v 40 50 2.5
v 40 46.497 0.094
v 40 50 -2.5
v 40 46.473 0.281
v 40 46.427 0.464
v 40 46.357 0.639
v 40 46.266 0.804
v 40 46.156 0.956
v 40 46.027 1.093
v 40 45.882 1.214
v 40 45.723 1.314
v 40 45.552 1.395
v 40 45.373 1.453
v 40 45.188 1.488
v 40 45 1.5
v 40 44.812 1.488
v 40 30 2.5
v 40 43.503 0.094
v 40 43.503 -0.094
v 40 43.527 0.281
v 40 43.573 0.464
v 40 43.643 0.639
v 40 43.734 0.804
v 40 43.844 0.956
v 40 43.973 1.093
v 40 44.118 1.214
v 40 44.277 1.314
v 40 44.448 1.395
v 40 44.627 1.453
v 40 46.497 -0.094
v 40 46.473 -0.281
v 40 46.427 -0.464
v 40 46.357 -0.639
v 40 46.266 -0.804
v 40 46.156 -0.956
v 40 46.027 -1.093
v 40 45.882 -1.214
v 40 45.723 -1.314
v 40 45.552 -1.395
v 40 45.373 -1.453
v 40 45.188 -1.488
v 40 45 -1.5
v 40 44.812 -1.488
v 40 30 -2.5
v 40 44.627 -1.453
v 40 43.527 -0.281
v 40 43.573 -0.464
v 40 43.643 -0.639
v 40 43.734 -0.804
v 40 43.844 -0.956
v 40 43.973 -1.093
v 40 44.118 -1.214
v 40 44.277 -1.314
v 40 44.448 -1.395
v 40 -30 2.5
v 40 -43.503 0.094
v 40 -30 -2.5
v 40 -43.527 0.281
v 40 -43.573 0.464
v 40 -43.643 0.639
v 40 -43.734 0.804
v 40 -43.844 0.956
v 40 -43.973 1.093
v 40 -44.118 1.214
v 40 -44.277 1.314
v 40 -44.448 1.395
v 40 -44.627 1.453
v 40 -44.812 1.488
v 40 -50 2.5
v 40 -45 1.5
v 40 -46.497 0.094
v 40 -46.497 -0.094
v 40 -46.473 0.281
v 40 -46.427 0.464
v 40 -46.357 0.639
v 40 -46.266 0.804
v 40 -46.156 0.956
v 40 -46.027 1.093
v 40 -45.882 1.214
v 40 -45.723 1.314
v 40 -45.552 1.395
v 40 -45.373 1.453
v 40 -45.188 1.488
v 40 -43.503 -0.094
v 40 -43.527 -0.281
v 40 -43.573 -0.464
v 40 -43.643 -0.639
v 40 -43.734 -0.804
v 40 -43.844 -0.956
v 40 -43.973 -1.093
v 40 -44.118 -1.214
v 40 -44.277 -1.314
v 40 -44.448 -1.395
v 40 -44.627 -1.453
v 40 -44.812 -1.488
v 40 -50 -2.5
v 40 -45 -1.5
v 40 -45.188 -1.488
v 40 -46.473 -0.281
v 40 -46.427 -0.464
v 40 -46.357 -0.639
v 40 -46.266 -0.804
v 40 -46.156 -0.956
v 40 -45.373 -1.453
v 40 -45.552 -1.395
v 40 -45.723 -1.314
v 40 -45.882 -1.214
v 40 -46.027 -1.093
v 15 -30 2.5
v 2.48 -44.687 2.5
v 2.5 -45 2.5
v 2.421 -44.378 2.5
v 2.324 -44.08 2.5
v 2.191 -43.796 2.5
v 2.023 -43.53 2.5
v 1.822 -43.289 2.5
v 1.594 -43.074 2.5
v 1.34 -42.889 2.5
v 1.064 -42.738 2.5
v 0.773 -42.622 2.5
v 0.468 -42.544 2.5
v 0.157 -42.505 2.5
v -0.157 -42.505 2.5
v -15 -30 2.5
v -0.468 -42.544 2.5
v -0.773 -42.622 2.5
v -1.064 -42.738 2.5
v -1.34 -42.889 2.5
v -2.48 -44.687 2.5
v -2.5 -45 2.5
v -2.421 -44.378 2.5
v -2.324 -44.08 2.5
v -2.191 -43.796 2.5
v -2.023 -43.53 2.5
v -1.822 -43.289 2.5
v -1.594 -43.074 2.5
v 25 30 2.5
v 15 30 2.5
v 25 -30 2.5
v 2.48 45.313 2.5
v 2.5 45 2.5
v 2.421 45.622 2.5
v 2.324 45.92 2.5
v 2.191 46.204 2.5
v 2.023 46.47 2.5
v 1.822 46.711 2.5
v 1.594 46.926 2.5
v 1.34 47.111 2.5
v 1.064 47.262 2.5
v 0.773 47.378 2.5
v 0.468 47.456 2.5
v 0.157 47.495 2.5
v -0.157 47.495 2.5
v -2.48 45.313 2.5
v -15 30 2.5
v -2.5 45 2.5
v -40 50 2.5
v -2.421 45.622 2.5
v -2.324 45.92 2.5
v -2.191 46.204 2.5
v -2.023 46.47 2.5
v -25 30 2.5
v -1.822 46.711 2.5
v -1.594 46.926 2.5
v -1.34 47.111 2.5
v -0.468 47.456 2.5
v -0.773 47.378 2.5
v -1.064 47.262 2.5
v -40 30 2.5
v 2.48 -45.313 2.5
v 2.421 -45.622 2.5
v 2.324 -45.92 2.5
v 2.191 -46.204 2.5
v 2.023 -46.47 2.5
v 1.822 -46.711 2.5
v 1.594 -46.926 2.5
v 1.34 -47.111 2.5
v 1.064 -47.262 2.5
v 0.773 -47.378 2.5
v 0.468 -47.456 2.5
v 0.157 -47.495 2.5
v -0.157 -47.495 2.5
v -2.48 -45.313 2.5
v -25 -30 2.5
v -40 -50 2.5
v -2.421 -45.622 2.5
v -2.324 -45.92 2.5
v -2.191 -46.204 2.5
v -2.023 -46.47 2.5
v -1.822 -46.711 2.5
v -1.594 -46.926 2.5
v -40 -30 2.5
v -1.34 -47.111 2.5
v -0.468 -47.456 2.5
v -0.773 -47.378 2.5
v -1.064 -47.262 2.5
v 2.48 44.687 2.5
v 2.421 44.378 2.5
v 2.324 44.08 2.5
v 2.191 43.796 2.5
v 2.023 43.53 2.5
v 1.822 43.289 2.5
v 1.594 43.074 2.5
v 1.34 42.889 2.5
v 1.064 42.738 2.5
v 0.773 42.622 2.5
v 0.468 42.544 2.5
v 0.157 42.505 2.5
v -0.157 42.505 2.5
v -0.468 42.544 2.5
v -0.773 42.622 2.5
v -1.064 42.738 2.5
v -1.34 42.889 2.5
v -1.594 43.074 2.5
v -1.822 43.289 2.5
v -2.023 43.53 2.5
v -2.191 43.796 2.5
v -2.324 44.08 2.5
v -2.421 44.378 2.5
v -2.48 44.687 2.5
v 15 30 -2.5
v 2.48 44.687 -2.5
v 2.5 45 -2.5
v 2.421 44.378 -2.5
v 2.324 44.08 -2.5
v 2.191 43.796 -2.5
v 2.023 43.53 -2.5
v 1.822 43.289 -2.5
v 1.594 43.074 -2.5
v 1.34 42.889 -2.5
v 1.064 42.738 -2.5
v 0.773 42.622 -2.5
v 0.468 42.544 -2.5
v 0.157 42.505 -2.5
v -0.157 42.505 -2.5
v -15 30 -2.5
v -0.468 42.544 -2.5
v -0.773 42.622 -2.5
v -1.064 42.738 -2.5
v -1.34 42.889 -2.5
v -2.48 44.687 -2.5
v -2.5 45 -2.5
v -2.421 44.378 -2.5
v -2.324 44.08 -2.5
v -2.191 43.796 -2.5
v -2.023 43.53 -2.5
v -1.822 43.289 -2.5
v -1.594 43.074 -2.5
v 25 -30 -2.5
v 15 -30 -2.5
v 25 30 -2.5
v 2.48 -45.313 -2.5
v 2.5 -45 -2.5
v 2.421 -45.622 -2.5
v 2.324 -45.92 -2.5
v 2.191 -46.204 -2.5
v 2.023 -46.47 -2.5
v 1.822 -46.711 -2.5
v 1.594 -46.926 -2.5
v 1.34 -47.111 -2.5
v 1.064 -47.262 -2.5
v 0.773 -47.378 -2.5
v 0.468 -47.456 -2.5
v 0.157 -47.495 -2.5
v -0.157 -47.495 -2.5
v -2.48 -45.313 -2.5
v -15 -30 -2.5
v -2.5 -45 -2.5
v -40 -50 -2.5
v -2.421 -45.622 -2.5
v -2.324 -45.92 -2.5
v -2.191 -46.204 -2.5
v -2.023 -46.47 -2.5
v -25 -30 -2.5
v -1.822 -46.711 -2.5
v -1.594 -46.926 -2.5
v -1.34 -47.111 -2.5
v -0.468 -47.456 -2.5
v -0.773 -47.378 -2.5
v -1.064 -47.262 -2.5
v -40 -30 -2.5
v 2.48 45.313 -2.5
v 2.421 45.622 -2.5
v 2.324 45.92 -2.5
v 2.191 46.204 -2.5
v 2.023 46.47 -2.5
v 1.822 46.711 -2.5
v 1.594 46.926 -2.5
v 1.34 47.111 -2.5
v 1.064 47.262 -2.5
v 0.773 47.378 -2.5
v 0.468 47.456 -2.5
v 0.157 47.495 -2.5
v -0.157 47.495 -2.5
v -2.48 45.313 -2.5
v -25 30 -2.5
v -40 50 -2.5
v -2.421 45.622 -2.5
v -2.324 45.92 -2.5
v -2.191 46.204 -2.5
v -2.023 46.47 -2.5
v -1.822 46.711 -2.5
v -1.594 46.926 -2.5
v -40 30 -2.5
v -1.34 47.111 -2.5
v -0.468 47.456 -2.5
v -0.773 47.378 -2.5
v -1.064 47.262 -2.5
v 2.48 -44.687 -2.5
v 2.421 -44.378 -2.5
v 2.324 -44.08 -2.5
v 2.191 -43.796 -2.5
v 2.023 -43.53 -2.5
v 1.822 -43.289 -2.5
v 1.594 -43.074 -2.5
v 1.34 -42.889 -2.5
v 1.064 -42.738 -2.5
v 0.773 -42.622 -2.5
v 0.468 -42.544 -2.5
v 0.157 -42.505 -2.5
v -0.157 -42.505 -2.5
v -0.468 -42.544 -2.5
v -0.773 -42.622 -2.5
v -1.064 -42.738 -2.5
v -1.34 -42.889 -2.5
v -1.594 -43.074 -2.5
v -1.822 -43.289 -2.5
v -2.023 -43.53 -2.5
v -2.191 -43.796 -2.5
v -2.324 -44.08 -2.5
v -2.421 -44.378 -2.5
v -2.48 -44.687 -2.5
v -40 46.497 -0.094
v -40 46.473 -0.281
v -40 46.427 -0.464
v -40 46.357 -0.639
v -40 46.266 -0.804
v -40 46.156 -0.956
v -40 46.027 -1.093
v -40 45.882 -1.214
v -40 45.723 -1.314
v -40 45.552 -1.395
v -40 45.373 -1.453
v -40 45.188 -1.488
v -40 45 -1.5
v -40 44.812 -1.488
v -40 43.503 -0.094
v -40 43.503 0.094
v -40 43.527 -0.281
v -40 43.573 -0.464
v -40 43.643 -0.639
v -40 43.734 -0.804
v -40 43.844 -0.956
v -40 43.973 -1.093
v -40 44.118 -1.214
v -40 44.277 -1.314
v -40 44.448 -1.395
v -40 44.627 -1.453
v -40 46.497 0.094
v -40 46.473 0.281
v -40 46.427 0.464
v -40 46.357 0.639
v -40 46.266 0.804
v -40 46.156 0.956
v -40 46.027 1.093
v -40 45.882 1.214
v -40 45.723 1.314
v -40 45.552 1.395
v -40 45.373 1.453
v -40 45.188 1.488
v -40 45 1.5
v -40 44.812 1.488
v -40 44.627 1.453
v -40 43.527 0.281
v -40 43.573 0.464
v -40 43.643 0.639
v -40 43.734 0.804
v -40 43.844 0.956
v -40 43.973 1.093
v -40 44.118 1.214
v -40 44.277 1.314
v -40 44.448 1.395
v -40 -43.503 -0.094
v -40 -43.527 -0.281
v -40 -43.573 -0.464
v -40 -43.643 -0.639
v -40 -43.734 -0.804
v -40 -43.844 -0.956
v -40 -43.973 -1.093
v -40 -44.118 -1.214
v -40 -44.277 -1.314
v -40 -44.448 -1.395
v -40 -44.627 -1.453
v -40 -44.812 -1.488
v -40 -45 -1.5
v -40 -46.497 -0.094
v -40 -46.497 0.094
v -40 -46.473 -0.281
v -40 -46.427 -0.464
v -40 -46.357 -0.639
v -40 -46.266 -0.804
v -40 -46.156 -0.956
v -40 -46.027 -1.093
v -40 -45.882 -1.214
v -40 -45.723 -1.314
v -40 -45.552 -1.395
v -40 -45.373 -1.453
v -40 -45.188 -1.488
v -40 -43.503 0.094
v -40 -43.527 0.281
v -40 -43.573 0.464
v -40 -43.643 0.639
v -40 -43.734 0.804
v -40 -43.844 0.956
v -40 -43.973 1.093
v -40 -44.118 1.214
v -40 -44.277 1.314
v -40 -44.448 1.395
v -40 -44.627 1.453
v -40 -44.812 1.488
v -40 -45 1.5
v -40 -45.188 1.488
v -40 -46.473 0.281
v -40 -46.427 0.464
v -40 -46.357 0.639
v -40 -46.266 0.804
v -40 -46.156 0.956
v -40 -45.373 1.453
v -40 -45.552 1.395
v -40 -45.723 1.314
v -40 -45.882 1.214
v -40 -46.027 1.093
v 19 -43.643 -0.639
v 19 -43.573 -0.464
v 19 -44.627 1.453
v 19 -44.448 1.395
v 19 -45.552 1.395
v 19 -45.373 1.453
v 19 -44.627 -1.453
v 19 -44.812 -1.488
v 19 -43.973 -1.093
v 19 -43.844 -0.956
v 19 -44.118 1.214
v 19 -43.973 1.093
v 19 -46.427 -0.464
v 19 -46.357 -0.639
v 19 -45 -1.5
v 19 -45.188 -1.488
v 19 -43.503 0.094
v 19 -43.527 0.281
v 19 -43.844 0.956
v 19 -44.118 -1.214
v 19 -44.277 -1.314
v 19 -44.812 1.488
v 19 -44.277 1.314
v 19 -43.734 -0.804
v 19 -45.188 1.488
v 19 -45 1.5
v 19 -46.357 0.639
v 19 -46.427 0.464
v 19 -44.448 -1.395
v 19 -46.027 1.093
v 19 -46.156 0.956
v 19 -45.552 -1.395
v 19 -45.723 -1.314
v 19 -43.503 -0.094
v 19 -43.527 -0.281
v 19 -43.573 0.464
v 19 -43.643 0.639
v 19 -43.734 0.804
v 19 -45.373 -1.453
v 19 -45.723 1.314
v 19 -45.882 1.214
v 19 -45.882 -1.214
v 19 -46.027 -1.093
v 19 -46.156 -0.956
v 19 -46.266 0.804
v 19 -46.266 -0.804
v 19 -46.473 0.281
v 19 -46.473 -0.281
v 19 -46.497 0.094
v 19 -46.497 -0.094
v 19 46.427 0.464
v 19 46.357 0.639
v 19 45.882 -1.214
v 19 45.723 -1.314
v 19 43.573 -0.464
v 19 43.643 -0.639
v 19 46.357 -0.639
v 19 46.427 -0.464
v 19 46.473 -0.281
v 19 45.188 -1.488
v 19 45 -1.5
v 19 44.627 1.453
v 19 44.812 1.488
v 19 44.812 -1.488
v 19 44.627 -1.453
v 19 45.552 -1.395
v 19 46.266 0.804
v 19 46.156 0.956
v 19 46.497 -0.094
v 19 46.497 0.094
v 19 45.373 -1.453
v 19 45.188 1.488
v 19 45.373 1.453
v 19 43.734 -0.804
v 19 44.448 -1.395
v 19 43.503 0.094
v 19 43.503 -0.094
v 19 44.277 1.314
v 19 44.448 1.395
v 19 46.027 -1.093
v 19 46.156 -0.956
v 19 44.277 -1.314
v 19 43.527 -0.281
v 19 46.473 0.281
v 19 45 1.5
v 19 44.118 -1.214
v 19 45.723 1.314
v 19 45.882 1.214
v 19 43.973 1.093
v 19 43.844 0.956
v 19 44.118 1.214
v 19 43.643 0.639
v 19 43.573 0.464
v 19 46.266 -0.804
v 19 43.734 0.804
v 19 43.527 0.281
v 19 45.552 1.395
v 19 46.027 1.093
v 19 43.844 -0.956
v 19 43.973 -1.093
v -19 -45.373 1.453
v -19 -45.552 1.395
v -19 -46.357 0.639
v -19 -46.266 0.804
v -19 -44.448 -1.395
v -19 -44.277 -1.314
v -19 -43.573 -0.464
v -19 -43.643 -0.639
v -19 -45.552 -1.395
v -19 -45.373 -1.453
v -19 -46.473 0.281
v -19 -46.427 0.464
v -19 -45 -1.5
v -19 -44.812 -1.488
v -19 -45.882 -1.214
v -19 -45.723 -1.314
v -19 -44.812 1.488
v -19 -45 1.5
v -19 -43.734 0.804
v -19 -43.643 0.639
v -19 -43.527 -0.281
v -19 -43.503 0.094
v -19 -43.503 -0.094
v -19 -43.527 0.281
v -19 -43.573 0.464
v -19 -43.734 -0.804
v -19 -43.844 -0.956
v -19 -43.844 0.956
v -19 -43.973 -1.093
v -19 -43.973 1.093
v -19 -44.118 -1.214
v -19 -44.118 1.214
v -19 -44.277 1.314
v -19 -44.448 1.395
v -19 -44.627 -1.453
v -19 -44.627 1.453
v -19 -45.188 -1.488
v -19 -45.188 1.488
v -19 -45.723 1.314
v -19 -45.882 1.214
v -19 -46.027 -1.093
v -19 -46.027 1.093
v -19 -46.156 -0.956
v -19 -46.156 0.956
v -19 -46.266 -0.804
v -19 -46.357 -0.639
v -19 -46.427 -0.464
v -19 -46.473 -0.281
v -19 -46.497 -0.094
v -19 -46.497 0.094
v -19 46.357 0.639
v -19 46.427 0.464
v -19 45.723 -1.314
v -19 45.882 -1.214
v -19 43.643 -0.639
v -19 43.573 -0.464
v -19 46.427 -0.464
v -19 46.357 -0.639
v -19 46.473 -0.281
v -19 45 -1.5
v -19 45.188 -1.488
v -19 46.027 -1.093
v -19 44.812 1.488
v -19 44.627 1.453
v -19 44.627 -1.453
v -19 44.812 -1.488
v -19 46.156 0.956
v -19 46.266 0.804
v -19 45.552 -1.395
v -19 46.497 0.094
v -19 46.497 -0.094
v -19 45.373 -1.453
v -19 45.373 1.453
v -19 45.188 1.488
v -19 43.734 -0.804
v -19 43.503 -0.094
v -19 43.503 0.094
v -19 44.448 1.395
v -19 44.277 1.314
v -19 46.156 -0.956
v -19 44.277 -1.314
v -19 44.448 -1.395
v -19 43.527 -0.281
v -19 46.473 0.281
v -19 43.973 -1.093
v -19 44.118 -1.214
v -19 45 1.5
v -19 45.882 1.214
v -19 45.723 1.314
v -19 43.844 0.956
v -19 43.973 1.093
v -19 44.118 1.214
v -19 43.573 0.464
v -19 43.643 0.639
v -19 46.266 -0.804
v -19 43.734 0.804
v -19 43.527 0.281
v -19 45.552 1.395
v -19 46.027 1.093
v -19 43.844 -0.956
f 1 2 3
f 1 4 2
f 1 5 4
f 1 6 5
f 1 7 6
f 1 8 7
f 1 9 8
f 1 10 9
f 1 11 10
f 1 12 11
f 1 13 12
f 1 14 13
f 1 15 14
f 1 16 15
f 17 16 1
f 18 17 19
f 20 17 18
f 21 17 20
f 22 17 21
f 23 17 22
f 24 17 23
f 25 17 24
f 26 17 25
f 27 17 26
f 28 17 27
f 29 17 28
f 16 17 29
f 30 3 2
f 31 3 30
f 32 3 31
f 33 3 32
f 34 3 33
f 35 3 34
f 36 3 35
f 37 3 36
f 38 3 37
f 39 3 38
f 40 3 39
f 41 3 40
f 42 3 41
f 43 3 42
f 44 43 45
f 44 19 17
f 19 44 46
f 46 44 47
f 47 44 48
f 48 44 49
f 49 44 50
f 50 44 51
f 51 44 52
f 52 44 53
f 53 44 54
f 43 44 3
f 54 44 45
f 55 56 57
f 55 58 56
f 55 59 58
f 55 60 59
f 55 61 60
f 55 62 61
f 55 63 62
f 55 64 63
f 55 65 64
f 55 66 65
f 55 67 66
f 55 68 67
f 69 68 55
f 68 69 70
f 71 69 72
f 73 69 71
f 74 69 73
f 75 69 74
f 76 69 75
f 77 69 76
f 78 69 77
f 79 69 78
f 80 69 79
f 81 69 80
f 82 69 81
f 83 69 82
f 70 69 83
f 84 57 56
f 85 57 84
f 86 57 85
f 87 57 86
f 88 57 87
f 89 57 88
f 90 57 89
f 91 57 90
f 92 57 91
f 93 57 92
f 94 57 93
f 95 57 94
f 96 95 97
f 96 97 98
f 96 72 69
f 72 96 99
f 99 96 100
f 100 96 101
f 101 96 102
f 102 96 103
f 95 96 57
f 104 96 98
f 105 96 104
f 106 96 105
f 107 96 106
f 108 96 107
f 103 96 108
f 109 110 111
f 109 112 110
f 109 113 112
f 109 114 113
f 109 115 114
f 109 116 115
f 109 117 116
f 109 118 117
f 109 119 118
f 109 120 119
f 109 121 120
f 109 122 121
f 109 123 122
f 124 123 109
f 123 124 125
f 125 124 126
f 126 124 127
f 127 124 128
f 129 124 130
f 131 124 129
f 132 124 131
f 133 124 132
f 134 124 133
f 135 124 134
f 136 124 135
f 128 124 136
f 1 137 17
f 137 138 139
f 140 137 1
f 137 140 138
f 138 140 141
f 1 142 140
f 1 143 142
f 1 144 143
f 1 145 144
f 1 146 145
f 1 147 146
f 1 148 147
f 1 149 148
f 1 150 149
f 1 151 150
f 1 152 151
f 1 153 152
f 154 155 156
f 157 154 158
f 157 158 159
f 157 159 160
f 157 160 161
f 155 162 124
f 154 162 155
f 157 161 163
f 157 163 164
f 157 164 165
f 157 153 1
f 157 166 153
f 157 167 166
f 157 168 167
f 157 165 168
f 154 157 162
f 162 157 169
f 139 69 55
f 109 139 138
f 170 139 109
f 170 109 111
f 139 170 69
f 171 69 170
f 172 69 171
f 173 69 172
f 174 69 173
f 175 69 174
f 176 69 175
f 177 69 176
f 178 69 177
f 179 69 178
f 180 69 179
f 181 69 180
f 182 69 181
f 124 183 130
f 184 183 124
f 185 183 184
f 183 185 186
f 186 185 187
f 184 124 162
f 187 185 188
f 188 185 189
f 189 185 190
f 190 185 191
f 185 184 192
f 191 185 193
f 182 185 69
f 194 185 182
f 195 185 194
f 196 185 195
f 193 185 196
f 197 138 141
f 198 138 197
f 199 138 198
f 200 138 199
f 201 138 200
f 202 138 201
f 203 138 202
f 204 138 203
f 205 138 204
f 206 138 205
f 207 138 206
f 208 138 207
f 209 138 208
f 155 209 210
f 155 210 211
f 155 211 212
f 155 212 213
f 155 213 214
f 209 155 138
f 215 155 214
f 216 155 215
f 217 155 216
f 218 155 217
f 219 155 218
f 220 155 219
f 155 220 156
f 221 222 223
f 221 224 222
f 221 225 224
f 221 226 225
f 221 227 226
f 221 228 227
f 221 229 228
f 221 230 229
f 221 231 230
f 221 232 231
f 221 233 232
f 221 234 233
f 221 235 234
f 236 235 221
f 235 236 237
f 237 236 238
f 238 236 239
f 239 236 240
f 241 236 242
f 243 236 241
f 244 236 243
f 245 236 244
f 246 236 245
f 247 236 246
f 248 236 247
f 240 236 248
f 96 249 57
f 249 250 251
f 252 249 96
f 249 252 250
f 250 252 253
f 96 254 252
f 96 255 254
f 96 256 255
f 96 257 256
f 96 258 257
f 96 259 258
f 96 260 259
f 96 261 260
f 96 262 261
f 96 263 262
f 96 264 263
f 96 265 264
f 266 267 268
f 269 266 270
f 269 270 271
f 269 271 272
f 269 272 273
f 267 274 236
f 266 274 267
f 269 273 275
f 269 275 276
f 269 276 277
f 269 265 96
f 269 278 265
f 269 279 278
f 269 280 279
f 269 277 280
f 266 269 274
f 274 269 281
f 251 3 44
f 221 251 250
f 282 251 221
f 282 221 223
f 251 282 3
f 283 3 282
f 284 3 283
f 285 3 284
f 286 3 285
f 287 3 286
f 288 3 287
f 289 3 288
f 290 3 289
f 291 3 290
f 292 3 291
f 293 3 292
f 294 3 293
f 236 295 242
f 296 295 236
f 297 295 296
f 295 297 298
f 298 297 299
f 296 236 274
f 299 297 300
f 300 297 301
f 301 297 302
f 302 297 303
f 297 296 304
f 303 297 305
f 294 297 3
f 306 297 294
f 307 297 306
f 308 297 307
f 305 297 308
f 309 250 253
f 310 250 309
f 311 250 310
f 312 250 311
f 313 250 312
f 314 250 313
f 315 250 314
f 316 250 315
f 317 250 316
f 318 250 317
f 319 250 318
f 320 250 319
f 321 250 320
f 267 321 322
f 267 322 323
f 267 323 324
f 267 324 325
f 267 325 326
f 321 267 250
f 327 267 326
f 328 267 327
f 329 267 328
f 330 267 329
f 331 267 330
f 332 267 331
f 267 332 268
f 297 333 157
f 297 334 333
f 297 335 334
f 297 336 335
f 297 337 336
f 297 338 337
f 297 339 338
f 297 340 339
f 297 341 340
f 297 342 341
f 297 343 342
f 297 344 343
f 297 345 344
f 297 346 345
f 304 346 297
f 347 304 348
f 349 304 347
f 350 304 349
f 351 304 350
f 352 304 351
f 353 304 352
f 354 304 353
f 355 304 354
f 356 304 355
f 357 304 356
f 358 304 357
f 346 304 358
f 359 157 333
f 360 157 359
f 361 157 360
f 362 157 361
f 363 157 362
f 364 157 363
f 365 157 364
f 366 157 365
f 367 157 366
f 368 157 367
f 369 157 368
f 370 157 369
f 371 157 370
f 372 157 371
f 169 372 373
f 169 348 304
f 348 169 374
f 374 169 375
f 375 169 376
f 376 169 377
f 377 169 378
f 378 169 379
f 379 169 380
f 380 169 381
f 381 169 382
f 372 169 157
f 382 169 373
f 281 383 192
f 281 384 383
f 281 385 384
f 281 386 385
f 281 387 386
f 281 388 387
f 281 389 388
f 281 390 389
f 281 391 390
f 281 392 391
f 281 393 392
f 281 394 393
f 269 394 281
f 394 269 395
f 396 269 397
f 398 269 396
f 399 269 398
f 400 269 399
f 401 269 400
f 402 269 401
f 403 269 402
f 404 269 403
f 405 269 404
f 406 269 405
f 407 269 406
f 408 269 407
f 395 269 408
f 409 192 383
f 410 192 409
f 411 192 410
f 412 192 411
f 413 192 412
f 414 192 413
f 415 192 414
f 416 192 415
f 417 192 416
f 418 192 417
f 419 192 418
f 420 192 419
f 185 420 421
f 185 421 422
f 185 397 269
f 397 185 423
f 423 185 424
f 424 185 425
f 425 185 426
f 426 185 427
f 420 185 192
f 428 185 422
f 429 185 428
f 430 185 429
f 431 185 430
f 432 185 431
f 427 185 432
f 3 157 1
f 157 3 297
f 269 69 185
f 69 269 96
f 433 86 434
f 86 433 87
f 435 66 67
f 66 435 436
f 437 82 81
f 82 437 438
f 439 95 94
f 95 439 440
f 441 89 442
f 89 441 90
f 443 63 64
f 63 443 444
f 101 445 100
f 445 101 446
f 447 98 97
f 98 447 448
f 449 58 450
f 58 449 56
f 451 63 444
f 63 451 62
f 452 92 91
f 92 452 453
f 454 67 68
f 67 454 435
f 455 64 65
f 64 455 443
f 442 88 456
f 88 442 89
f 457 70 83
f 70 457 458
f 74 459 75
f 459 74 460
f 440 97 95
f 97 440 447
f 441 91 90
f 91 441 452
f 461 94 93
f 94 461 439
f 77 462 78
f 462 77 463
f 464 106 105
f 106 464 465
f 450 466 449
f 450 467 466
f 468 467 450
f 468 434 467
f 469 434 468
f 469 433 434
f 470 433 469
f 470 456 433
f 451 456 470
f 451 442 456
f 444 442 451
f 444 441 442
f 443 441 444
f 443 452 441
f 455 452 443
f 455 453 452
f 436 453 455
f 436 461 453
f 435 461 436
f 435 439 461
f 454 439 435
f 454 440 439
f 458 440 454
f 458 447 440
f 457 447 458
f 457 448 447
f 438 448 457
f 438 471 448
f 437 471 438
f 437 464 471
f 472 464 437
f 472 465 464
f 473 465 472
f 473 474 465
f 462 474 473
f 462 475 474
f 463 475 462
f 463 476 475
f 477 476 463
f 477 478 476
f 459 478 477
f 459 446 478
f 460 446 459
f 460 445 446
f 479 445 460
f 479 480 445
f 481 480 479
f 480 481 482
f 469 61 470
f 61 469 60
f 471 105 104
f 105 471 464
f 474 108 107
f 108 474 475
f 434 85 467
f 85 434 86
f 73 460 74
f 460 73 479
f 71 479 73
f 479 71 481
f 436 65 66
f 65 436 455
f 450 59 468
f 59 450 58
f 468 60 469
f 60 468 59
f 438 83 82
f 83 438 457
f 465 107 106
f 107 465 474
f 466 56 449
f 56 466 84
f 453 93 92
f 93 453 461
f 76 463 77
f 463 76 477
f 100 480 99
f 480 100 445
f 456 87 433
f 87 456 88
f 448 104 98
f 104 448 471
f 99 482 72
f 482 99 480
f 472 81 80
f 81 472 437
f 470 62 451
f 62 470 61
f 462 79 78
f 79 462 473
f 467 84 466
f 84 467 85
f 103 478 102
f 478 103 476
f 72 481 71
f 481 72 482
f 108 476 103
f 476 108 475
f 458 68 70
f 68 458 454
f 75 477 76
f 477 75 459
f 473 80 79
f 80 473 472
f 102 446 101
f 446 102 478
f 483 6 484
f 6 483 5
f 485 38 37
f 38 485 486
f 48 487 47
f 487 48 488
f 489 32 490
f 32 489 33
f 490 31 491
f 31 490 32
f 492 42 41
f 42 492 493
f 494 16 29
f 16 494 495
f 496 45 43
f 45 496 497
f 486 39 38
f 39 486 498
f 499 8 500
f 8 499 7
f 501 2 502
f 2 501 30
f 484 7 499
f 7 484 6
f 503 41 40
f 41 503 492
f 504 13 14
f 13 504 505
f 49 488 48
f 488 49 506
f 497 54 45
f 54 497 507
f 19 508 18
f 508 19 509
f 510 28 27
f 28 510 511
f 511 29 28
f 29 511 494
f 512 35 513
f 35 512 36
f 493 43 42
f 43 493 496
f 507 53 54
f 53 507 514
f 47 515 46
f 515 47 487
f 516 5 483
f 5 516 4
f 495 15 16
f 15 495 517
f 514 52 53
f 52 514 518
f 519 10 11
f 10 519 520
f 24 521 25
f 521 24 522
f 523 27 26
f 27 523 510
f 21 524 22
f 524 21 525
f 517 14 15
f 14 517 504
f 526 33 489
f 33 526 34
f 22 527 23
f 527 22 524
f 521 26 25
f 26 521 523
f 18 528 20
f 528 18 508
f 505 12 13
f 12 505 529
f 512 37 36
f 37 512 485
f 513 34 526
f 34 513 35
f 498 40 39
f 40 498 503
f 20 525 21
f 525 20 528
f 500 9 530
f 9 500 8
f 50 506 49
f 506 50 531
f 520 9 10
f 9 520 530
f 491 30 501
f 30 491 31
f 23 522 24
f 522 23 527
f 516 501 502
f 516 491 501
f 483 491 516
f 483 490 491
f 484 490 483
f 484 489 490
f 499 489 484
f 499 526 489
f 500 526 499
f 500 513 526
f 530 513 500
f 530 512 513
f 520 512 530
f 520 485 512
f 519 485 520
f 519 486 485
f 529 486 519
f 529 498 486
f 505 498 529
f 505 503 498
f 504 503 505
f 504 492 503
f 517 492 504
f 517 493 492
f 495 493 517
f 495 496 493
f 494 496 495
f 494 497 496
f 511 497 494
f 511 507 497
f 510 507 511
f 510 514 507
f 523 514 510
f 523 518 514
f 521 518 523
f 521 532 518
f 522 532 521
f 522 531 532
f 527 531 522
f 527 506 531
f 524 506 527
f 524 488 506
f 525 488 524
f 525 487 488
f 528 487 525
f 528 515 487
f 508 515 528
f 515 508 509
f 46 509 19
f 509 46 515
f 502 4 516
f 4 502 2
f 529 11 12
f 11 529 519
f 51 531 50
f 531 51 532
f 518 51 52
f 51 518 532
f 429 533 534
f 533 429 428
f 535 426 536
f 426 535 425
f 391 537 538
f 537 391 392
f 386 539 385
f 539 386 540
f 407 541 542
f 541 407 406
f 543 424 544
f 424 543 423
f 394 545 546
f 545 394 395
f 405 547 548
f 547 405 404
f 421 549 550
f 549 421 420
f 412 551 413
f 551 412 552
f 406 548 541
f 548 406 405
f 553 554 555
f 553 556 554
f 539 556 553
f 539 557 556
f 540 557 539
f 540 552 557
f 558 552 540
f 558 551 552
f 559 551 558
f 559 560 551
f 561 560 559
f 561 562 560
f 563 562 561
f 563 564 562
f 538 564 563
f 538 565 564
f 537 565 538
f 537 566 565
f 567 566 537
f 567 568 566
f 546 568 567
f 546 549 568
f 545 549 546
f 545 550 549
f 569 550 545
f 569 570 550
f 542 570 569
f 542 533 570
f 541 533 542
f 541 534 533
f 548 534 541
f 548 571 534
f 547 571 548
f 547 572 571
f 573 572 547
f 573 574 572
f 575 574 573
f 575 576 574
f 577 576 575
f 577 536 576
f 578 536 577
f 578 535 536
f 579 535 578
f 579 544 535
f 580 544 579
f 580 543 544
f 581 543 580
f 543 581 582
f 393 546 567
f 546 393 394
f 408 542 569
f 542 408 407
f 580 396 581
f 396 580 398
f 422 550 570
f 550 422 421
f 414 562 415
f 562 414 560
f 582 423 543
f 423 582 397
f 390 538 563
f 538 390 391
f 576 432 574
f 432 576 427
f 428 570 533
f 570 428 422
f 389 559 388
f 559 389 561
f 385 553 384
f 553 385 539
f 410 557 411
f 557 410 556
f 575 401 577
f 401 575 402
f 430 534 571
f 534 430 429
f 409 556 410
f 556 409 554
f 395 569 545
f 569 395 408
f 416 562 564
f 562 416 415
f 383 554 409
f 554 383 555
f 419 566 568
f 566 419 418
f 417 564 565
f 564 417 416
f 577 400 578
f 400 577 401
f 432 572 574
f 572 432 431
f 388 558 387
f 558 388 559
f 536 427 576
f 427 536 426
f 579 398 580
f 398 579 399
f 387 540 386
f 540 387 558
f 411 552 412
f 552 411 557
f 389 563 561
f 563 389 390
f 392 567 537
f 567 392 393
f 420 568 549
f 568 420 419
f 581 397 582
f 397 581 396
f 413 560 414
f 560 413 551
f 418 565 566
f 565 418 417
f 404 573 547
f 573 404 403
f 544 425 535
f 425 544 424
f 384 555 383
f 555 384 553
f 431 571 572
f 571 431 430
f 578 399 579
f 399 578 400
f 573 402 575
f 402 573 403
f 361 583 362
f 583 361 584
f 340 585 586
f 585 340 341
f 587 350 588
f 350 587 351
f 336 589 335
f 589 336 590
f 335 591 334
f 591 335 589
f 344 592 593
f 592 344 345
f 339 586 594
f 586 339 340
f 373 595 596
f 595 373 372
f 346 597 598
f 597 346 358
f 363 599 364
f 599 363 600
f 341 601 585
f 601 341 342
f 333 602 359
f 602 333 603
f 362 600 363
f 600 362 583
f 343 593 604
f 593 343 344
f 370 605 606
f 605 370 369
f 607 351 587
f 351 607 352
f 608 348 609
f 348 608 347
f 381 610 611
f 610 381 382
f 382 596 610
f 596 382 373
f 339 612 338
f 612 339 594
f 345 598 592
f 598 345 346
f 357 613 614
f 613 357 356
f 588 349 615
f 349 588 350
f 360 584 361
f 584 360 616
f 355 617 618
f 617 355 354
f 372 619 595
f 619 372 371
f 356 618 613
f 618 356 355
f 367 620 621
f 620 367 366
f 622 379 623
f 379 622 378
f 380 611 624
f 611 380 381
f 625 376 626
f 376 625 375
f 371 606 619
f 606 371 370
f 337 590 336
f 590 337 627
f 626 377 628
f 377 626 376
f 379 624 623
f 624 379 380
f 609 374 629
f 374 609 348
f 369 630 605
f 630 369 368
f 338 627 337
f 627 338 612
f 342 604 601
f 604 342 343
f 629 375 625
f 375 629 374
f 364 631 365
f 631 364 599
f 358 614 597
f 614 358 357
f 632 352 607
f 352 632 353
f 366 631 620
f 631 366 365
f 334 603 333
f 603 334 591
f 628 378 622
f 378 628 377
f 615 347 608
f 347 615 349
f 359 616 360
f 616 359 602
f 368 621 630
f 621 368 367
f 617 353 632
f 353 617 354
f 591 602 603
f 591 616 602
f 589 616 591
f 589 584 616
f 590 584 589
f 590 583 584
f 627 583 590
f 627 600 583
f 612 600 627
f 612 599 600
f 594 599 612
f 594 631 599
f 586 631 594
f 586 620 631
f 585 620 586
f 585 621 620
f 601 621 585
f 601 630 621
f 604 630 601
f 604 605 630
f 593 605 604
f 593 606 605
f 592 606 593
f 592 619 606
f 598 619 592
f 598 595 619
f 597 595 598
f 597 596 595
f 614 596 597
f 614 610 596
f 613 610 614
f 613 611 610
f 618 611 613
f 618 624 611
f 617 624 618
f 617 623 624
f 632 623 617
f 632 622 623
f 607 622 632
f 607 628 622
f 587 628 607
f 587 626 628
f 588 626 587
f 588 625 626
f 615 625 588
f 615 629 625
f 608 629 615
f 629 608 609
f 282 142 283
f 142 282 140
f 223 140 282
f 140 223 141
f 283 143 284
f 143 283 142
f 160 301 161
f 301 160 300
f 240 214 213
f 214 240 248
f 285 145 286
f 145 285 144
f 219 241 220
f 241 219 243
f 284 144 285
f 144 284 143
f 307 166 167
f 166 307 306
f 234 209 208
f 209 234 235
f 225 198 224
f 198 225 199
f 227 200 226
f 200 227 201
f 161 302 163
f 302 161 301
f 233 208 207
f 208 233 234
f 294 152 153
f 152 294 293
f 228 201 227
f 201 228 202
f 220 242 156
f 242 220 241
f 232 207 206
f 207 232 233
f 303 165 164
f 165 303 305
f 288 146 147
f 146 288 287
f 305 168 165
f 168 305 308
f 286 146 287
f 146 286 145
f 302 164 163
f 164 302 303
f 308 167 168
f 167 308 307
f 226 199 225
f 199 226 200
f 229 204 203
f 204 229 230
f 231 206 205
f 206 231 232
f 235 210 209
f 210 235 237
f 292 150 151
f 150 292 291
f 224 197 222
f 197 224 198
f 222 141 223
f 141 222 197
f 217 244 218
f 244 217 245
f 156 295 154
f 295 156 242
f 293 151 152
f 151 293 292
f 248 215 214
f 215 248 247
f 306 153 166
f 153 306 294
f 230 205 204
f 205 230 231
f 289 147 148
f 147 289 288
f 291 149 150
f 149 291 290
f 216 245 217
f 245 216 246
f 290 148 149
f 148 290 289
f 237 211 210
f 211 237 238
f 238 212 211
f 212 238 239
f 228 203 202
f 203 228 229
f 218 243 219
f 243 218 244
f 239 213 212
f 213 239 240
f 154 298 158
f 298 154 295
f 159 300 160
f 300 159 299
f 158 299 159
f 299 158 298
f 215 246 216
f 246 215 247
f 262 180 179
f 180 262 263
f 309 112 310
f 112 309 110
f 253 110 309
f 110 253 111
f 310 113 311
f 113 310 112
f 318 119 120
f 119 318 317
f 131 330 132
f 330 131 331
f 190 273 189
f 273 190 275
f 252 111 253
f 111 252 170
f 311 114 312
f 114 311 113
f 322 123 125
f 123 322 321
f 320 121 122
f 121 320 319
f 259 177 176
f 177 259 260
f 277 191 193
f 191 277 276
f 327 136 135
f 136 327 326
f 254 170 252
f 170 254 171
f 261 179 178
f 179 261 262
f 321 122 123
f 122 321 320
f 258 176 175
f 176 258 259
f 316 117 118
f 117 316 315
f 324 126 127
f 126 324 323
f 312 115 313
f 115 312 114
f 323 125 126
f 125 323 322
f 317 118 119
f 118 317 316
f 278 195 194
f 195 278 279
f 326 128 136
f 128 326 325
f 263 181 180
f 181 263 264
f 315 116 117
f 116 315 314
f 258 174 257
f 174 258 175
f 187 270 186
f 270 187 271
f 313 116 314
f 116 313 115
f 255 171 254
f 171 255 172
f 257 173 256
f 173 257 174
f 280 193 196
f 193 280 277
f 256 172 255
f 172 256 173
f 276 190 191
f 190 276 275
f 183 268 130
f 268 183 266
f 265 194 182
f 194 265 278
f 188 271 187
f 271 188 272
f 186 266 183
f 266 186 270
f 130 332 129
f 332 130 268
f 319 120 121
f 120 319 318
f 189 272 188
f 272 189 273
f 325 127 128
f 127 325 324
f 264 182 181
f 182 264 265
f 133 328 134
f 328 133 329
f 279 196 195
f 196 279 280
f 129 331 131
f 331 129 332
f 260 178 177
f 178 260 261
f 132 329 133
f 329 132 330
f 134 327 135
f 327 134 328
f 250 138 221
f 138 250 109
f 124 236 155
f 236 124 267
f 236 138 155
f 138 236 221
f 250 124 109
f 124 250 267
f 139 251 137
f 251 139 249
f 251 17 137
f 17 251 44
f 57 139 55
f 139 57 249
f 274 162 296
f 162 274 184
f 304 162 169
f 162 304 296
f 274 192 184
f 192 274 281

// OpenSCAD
$fn=50;

difference()
{
    cube([80,100,5],center=true);

    
    // Alignment-Holes
    translate([ 30,-45,0]) rotate([0,90,0]) cylinder(h=22,d1=3,d2=3,center=true);
    translate([ 30, 45,0]) rotate([0,90,0]) cylinder(h=22,d1=3,d2=3,center=true);
    translate([-30,-45,0]) rotate([0,90,0]) cylinder(h=22,d1=3,d2=3,center=true);
    translate([-30, 45,0]) rotate([0,90,0]) cylinder(h=22,d1=3,d2=3,center=true);

    // Mounting Holes
    translate([0, 45,0]) cylinder(h=20,d=5,center=true);
    translate([0,-45,0]) cylinder(h=20,d=5,center=true);

    // Holes
    cube([30,60,20],center=true);
    translate([ 40,0,0]) cube([30,60,20],center=true);
    translate([-40,0,0]) cube([30,60,20],center=true);
}
